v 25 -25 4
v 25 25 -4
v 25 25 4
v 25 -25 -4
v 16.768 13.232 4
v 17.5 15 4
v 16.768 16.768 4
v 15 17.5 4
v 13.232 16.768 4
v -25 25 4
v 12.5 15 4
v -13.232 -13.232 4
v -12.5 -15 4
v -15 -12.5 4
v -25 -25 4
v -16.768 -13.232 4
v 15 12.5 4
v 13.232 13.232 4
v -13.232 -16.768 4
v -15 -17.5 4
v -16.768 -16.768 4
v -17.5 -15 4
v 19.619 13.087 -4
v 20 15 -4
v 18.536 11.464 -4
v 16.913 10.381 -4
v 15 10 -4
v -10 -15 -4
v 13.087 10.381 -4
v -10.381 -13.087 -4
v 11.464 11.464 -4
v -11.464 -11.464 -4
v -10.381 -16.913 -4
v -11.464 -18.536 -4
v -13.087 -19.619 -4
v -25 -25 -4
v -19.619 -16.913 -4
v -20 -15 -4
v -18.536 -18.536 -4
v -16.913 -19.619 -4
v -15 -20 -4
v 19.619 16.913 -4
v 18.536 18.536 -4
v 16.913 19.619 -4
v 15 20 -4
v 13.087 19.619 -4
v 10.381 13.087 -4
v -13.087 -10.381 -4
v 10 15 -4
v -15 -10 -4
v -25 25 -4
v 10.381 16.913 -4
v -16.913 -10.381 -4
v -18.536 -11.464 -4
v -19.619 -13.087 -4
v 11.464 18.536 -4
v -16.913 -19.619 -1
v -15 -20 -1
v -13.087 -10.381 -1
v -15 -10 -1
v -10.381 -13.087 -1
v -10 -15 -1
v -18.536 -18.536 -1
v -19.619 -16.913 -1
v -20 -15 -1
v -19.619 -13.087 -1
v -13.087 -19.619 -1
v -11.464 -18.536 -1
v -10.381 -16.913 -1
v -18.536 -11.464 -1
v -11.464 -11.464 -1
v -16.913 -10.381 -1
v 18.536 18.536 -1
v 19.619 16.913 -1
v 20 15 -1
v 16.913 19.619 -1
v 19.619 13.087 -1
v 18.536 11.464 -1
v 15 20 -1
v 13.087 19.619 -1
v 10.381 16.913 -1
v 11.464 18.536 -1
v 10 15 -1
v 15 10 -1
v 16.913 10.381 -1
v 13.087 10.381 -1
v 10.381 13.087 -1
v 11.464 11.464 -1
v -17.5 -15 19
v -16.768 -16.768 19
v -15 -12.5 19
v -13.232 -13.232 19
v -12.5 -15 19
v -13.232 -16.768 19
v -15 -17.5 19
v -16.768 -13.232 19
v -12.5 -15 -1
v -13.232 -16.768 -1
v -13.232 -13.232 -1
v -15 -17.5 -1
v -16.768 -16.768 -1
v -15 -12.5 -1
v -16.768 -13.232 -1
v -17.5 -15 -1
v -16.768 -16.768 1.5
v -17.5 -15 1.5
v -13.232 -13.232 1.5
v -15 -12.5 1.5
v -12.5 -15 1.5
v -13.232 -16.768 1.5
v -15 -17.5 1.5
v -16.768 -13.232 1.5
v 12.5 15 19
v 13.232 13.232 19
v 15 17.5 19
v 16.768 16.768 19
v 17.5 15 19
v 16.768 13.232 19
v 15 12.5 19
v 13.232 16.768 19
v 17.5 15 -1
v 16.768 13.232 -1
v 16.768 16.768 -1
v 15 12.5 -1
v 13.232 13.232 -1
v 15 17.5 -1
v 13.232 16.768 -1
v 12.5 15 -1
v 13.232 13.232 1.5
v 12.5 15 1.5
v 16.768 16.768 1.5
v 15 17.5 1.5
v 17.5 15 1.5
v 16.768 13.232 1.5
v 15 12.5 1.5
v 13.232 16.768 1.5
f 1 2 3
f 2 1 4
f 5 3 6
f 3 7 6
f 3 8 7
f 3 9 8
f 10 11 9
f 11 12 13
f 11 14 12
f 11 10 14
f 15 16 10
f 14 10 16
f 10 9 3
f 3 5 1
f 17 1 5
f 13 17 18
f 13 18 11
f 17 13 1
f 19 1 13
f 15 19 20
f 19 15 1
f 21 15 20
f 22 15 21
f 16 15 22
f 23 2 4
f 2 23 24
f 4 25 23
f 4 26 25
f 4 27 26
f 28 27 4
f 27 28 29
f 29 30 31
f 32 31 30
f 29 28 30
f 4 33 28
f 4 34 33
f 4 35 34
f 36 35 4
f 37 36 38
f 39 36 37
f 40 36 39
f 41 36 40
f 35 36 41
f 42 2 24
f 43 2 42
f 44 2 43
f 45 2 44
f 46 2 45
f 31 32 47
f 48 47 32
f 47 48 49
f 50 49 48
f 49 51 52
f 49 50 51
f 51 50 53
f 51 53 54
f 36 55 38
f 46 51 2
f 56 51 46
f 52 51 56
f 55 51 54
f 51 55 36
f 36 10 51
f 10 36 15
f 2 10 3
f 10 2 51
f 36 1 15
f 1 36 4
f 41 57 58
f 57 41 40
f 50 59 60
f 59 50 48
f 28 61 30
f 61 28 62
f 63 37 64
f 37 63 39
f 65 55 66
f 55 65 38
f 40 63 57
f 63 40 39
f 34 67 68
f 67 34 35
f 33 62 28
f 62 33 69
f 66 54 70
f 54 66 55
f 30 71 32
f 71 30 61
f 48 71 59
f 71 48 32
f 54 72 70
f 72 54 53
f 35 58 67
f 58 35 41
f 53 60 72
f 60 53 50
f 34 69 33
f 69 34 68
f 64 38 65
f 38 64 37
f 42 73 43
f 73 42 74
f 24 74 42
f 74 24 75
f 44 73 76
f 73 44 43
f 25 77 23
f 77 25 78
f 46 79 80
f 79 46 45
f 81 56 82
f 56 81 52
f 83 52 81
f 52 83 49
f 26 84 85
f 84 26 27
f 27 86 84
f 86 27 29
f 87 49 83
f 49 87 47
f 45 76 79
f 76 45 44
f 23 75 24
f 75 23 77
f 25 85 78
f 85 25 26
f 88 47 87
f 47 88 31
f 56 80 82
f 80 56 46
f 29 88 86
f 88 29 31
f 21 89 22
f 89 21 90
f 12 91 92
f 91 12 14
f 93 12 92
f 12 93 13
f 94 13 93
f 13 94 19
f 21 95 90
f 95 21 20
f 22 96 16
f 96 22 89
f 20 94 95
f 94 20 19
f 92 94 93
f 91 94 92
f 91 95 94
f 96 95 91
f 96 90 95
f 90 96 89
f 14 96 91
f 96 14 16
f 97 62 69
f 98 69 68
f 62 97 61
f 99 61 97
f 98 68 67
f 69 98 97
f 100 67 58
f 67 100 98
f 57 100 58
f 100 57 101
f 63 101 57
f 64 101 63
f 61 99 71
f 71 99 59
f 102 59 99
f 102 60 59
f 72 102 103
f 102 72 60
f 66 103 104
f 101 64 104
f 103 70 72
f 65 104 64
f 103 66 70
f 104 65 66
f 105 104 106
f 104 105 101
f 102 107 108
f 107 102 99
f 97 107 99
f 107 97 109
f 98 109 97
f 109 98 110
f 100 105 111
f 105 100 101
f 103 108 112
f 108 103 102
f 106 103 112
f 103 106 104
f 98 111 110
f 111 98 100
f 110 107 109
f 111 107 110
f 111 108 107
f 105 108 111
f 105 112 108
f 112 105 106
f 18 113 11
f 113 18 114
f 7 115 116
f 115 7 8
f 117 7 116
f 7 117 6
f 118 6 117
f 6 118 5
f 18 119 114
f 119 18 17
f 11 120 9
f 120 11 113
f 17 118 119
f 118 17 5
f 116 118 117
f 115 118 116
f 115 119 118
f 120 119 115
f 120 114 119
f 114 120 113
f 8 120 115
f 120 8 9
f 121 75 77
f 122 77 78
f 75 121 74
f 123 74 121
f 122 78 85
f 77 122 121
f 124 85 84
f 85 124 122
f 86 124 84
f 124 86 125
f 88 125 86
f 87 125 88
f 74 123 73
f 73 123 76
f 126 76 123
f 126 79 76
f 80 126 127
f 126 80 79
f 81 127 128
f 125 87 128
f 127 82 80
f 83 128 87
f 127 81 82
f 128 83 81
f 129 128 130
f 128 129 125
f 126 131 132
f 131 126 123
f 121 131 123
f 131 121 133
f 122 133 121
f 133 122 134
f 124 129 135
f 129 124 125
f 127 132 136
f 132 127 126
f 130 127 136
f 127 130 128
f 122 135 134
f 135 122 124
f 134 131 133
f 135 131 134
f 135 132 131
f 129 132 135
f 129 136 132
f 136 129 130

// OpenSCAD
// Base Plate
module base_plate() {
    difference() {
        // Main rectangular block
        cube([50, 50, 8], center = true); // Adjusted thickness to match original model
        
        // Circular through-holes
        translate([-15, -15, 0]) cylinder(r = 5, h = 20, center = true); // Changed slots to circular holes
        translate([15, 15, 0]) cylinder(r = 5, h = 20, center = true); // Changed slots to circular holes
    }
}

// Bolt
module bolt() {
    union() {
        // Cylindrical rod
        cylinder(r = 2.5, h = 15, center = false); // Shortened bolt length to match original model
        
        // Threading (simplified as a smaller cylinder for visualization)
        translate([0, 0, 5]) cylinder(r = 2.25, h = 10, center = false); // Added threading
    }
}

// Nut
module nut() {
    difference() {
        // Hexagonal prism
        rotate([0, 0, 30]) linear_extrude(height = 5) polygon(points = [[-3, -5], [3, -5], [5, -3], [5, 3], [3, 5], [-3, 5], [-5, 3], [-5, -3]]);
        
        // Internal threaded hole
        translate([0, 0, -2.5]) cylinder(r = 2.5, h = 10, center = true);
    }
}

// Assembly
module assembly() {
    // Layer 1: Base Plate
    base_plate();
    
    // Layer 2: Bolts and Nuts
    translate([-15, -15, 4]) { // Adjusted bolt and nut position
        bolt();
        translate([0, 0, -5]) nut(); // Added nut to fasten the bolt
    }
    translate([15, 15, 4]) { // Adjusted bolt and nut position
        bolt();
        translate([0, 0, -5]) nut(); // Added nut to fasten the bolt
    }
}

// Render the assembly
assembly();
